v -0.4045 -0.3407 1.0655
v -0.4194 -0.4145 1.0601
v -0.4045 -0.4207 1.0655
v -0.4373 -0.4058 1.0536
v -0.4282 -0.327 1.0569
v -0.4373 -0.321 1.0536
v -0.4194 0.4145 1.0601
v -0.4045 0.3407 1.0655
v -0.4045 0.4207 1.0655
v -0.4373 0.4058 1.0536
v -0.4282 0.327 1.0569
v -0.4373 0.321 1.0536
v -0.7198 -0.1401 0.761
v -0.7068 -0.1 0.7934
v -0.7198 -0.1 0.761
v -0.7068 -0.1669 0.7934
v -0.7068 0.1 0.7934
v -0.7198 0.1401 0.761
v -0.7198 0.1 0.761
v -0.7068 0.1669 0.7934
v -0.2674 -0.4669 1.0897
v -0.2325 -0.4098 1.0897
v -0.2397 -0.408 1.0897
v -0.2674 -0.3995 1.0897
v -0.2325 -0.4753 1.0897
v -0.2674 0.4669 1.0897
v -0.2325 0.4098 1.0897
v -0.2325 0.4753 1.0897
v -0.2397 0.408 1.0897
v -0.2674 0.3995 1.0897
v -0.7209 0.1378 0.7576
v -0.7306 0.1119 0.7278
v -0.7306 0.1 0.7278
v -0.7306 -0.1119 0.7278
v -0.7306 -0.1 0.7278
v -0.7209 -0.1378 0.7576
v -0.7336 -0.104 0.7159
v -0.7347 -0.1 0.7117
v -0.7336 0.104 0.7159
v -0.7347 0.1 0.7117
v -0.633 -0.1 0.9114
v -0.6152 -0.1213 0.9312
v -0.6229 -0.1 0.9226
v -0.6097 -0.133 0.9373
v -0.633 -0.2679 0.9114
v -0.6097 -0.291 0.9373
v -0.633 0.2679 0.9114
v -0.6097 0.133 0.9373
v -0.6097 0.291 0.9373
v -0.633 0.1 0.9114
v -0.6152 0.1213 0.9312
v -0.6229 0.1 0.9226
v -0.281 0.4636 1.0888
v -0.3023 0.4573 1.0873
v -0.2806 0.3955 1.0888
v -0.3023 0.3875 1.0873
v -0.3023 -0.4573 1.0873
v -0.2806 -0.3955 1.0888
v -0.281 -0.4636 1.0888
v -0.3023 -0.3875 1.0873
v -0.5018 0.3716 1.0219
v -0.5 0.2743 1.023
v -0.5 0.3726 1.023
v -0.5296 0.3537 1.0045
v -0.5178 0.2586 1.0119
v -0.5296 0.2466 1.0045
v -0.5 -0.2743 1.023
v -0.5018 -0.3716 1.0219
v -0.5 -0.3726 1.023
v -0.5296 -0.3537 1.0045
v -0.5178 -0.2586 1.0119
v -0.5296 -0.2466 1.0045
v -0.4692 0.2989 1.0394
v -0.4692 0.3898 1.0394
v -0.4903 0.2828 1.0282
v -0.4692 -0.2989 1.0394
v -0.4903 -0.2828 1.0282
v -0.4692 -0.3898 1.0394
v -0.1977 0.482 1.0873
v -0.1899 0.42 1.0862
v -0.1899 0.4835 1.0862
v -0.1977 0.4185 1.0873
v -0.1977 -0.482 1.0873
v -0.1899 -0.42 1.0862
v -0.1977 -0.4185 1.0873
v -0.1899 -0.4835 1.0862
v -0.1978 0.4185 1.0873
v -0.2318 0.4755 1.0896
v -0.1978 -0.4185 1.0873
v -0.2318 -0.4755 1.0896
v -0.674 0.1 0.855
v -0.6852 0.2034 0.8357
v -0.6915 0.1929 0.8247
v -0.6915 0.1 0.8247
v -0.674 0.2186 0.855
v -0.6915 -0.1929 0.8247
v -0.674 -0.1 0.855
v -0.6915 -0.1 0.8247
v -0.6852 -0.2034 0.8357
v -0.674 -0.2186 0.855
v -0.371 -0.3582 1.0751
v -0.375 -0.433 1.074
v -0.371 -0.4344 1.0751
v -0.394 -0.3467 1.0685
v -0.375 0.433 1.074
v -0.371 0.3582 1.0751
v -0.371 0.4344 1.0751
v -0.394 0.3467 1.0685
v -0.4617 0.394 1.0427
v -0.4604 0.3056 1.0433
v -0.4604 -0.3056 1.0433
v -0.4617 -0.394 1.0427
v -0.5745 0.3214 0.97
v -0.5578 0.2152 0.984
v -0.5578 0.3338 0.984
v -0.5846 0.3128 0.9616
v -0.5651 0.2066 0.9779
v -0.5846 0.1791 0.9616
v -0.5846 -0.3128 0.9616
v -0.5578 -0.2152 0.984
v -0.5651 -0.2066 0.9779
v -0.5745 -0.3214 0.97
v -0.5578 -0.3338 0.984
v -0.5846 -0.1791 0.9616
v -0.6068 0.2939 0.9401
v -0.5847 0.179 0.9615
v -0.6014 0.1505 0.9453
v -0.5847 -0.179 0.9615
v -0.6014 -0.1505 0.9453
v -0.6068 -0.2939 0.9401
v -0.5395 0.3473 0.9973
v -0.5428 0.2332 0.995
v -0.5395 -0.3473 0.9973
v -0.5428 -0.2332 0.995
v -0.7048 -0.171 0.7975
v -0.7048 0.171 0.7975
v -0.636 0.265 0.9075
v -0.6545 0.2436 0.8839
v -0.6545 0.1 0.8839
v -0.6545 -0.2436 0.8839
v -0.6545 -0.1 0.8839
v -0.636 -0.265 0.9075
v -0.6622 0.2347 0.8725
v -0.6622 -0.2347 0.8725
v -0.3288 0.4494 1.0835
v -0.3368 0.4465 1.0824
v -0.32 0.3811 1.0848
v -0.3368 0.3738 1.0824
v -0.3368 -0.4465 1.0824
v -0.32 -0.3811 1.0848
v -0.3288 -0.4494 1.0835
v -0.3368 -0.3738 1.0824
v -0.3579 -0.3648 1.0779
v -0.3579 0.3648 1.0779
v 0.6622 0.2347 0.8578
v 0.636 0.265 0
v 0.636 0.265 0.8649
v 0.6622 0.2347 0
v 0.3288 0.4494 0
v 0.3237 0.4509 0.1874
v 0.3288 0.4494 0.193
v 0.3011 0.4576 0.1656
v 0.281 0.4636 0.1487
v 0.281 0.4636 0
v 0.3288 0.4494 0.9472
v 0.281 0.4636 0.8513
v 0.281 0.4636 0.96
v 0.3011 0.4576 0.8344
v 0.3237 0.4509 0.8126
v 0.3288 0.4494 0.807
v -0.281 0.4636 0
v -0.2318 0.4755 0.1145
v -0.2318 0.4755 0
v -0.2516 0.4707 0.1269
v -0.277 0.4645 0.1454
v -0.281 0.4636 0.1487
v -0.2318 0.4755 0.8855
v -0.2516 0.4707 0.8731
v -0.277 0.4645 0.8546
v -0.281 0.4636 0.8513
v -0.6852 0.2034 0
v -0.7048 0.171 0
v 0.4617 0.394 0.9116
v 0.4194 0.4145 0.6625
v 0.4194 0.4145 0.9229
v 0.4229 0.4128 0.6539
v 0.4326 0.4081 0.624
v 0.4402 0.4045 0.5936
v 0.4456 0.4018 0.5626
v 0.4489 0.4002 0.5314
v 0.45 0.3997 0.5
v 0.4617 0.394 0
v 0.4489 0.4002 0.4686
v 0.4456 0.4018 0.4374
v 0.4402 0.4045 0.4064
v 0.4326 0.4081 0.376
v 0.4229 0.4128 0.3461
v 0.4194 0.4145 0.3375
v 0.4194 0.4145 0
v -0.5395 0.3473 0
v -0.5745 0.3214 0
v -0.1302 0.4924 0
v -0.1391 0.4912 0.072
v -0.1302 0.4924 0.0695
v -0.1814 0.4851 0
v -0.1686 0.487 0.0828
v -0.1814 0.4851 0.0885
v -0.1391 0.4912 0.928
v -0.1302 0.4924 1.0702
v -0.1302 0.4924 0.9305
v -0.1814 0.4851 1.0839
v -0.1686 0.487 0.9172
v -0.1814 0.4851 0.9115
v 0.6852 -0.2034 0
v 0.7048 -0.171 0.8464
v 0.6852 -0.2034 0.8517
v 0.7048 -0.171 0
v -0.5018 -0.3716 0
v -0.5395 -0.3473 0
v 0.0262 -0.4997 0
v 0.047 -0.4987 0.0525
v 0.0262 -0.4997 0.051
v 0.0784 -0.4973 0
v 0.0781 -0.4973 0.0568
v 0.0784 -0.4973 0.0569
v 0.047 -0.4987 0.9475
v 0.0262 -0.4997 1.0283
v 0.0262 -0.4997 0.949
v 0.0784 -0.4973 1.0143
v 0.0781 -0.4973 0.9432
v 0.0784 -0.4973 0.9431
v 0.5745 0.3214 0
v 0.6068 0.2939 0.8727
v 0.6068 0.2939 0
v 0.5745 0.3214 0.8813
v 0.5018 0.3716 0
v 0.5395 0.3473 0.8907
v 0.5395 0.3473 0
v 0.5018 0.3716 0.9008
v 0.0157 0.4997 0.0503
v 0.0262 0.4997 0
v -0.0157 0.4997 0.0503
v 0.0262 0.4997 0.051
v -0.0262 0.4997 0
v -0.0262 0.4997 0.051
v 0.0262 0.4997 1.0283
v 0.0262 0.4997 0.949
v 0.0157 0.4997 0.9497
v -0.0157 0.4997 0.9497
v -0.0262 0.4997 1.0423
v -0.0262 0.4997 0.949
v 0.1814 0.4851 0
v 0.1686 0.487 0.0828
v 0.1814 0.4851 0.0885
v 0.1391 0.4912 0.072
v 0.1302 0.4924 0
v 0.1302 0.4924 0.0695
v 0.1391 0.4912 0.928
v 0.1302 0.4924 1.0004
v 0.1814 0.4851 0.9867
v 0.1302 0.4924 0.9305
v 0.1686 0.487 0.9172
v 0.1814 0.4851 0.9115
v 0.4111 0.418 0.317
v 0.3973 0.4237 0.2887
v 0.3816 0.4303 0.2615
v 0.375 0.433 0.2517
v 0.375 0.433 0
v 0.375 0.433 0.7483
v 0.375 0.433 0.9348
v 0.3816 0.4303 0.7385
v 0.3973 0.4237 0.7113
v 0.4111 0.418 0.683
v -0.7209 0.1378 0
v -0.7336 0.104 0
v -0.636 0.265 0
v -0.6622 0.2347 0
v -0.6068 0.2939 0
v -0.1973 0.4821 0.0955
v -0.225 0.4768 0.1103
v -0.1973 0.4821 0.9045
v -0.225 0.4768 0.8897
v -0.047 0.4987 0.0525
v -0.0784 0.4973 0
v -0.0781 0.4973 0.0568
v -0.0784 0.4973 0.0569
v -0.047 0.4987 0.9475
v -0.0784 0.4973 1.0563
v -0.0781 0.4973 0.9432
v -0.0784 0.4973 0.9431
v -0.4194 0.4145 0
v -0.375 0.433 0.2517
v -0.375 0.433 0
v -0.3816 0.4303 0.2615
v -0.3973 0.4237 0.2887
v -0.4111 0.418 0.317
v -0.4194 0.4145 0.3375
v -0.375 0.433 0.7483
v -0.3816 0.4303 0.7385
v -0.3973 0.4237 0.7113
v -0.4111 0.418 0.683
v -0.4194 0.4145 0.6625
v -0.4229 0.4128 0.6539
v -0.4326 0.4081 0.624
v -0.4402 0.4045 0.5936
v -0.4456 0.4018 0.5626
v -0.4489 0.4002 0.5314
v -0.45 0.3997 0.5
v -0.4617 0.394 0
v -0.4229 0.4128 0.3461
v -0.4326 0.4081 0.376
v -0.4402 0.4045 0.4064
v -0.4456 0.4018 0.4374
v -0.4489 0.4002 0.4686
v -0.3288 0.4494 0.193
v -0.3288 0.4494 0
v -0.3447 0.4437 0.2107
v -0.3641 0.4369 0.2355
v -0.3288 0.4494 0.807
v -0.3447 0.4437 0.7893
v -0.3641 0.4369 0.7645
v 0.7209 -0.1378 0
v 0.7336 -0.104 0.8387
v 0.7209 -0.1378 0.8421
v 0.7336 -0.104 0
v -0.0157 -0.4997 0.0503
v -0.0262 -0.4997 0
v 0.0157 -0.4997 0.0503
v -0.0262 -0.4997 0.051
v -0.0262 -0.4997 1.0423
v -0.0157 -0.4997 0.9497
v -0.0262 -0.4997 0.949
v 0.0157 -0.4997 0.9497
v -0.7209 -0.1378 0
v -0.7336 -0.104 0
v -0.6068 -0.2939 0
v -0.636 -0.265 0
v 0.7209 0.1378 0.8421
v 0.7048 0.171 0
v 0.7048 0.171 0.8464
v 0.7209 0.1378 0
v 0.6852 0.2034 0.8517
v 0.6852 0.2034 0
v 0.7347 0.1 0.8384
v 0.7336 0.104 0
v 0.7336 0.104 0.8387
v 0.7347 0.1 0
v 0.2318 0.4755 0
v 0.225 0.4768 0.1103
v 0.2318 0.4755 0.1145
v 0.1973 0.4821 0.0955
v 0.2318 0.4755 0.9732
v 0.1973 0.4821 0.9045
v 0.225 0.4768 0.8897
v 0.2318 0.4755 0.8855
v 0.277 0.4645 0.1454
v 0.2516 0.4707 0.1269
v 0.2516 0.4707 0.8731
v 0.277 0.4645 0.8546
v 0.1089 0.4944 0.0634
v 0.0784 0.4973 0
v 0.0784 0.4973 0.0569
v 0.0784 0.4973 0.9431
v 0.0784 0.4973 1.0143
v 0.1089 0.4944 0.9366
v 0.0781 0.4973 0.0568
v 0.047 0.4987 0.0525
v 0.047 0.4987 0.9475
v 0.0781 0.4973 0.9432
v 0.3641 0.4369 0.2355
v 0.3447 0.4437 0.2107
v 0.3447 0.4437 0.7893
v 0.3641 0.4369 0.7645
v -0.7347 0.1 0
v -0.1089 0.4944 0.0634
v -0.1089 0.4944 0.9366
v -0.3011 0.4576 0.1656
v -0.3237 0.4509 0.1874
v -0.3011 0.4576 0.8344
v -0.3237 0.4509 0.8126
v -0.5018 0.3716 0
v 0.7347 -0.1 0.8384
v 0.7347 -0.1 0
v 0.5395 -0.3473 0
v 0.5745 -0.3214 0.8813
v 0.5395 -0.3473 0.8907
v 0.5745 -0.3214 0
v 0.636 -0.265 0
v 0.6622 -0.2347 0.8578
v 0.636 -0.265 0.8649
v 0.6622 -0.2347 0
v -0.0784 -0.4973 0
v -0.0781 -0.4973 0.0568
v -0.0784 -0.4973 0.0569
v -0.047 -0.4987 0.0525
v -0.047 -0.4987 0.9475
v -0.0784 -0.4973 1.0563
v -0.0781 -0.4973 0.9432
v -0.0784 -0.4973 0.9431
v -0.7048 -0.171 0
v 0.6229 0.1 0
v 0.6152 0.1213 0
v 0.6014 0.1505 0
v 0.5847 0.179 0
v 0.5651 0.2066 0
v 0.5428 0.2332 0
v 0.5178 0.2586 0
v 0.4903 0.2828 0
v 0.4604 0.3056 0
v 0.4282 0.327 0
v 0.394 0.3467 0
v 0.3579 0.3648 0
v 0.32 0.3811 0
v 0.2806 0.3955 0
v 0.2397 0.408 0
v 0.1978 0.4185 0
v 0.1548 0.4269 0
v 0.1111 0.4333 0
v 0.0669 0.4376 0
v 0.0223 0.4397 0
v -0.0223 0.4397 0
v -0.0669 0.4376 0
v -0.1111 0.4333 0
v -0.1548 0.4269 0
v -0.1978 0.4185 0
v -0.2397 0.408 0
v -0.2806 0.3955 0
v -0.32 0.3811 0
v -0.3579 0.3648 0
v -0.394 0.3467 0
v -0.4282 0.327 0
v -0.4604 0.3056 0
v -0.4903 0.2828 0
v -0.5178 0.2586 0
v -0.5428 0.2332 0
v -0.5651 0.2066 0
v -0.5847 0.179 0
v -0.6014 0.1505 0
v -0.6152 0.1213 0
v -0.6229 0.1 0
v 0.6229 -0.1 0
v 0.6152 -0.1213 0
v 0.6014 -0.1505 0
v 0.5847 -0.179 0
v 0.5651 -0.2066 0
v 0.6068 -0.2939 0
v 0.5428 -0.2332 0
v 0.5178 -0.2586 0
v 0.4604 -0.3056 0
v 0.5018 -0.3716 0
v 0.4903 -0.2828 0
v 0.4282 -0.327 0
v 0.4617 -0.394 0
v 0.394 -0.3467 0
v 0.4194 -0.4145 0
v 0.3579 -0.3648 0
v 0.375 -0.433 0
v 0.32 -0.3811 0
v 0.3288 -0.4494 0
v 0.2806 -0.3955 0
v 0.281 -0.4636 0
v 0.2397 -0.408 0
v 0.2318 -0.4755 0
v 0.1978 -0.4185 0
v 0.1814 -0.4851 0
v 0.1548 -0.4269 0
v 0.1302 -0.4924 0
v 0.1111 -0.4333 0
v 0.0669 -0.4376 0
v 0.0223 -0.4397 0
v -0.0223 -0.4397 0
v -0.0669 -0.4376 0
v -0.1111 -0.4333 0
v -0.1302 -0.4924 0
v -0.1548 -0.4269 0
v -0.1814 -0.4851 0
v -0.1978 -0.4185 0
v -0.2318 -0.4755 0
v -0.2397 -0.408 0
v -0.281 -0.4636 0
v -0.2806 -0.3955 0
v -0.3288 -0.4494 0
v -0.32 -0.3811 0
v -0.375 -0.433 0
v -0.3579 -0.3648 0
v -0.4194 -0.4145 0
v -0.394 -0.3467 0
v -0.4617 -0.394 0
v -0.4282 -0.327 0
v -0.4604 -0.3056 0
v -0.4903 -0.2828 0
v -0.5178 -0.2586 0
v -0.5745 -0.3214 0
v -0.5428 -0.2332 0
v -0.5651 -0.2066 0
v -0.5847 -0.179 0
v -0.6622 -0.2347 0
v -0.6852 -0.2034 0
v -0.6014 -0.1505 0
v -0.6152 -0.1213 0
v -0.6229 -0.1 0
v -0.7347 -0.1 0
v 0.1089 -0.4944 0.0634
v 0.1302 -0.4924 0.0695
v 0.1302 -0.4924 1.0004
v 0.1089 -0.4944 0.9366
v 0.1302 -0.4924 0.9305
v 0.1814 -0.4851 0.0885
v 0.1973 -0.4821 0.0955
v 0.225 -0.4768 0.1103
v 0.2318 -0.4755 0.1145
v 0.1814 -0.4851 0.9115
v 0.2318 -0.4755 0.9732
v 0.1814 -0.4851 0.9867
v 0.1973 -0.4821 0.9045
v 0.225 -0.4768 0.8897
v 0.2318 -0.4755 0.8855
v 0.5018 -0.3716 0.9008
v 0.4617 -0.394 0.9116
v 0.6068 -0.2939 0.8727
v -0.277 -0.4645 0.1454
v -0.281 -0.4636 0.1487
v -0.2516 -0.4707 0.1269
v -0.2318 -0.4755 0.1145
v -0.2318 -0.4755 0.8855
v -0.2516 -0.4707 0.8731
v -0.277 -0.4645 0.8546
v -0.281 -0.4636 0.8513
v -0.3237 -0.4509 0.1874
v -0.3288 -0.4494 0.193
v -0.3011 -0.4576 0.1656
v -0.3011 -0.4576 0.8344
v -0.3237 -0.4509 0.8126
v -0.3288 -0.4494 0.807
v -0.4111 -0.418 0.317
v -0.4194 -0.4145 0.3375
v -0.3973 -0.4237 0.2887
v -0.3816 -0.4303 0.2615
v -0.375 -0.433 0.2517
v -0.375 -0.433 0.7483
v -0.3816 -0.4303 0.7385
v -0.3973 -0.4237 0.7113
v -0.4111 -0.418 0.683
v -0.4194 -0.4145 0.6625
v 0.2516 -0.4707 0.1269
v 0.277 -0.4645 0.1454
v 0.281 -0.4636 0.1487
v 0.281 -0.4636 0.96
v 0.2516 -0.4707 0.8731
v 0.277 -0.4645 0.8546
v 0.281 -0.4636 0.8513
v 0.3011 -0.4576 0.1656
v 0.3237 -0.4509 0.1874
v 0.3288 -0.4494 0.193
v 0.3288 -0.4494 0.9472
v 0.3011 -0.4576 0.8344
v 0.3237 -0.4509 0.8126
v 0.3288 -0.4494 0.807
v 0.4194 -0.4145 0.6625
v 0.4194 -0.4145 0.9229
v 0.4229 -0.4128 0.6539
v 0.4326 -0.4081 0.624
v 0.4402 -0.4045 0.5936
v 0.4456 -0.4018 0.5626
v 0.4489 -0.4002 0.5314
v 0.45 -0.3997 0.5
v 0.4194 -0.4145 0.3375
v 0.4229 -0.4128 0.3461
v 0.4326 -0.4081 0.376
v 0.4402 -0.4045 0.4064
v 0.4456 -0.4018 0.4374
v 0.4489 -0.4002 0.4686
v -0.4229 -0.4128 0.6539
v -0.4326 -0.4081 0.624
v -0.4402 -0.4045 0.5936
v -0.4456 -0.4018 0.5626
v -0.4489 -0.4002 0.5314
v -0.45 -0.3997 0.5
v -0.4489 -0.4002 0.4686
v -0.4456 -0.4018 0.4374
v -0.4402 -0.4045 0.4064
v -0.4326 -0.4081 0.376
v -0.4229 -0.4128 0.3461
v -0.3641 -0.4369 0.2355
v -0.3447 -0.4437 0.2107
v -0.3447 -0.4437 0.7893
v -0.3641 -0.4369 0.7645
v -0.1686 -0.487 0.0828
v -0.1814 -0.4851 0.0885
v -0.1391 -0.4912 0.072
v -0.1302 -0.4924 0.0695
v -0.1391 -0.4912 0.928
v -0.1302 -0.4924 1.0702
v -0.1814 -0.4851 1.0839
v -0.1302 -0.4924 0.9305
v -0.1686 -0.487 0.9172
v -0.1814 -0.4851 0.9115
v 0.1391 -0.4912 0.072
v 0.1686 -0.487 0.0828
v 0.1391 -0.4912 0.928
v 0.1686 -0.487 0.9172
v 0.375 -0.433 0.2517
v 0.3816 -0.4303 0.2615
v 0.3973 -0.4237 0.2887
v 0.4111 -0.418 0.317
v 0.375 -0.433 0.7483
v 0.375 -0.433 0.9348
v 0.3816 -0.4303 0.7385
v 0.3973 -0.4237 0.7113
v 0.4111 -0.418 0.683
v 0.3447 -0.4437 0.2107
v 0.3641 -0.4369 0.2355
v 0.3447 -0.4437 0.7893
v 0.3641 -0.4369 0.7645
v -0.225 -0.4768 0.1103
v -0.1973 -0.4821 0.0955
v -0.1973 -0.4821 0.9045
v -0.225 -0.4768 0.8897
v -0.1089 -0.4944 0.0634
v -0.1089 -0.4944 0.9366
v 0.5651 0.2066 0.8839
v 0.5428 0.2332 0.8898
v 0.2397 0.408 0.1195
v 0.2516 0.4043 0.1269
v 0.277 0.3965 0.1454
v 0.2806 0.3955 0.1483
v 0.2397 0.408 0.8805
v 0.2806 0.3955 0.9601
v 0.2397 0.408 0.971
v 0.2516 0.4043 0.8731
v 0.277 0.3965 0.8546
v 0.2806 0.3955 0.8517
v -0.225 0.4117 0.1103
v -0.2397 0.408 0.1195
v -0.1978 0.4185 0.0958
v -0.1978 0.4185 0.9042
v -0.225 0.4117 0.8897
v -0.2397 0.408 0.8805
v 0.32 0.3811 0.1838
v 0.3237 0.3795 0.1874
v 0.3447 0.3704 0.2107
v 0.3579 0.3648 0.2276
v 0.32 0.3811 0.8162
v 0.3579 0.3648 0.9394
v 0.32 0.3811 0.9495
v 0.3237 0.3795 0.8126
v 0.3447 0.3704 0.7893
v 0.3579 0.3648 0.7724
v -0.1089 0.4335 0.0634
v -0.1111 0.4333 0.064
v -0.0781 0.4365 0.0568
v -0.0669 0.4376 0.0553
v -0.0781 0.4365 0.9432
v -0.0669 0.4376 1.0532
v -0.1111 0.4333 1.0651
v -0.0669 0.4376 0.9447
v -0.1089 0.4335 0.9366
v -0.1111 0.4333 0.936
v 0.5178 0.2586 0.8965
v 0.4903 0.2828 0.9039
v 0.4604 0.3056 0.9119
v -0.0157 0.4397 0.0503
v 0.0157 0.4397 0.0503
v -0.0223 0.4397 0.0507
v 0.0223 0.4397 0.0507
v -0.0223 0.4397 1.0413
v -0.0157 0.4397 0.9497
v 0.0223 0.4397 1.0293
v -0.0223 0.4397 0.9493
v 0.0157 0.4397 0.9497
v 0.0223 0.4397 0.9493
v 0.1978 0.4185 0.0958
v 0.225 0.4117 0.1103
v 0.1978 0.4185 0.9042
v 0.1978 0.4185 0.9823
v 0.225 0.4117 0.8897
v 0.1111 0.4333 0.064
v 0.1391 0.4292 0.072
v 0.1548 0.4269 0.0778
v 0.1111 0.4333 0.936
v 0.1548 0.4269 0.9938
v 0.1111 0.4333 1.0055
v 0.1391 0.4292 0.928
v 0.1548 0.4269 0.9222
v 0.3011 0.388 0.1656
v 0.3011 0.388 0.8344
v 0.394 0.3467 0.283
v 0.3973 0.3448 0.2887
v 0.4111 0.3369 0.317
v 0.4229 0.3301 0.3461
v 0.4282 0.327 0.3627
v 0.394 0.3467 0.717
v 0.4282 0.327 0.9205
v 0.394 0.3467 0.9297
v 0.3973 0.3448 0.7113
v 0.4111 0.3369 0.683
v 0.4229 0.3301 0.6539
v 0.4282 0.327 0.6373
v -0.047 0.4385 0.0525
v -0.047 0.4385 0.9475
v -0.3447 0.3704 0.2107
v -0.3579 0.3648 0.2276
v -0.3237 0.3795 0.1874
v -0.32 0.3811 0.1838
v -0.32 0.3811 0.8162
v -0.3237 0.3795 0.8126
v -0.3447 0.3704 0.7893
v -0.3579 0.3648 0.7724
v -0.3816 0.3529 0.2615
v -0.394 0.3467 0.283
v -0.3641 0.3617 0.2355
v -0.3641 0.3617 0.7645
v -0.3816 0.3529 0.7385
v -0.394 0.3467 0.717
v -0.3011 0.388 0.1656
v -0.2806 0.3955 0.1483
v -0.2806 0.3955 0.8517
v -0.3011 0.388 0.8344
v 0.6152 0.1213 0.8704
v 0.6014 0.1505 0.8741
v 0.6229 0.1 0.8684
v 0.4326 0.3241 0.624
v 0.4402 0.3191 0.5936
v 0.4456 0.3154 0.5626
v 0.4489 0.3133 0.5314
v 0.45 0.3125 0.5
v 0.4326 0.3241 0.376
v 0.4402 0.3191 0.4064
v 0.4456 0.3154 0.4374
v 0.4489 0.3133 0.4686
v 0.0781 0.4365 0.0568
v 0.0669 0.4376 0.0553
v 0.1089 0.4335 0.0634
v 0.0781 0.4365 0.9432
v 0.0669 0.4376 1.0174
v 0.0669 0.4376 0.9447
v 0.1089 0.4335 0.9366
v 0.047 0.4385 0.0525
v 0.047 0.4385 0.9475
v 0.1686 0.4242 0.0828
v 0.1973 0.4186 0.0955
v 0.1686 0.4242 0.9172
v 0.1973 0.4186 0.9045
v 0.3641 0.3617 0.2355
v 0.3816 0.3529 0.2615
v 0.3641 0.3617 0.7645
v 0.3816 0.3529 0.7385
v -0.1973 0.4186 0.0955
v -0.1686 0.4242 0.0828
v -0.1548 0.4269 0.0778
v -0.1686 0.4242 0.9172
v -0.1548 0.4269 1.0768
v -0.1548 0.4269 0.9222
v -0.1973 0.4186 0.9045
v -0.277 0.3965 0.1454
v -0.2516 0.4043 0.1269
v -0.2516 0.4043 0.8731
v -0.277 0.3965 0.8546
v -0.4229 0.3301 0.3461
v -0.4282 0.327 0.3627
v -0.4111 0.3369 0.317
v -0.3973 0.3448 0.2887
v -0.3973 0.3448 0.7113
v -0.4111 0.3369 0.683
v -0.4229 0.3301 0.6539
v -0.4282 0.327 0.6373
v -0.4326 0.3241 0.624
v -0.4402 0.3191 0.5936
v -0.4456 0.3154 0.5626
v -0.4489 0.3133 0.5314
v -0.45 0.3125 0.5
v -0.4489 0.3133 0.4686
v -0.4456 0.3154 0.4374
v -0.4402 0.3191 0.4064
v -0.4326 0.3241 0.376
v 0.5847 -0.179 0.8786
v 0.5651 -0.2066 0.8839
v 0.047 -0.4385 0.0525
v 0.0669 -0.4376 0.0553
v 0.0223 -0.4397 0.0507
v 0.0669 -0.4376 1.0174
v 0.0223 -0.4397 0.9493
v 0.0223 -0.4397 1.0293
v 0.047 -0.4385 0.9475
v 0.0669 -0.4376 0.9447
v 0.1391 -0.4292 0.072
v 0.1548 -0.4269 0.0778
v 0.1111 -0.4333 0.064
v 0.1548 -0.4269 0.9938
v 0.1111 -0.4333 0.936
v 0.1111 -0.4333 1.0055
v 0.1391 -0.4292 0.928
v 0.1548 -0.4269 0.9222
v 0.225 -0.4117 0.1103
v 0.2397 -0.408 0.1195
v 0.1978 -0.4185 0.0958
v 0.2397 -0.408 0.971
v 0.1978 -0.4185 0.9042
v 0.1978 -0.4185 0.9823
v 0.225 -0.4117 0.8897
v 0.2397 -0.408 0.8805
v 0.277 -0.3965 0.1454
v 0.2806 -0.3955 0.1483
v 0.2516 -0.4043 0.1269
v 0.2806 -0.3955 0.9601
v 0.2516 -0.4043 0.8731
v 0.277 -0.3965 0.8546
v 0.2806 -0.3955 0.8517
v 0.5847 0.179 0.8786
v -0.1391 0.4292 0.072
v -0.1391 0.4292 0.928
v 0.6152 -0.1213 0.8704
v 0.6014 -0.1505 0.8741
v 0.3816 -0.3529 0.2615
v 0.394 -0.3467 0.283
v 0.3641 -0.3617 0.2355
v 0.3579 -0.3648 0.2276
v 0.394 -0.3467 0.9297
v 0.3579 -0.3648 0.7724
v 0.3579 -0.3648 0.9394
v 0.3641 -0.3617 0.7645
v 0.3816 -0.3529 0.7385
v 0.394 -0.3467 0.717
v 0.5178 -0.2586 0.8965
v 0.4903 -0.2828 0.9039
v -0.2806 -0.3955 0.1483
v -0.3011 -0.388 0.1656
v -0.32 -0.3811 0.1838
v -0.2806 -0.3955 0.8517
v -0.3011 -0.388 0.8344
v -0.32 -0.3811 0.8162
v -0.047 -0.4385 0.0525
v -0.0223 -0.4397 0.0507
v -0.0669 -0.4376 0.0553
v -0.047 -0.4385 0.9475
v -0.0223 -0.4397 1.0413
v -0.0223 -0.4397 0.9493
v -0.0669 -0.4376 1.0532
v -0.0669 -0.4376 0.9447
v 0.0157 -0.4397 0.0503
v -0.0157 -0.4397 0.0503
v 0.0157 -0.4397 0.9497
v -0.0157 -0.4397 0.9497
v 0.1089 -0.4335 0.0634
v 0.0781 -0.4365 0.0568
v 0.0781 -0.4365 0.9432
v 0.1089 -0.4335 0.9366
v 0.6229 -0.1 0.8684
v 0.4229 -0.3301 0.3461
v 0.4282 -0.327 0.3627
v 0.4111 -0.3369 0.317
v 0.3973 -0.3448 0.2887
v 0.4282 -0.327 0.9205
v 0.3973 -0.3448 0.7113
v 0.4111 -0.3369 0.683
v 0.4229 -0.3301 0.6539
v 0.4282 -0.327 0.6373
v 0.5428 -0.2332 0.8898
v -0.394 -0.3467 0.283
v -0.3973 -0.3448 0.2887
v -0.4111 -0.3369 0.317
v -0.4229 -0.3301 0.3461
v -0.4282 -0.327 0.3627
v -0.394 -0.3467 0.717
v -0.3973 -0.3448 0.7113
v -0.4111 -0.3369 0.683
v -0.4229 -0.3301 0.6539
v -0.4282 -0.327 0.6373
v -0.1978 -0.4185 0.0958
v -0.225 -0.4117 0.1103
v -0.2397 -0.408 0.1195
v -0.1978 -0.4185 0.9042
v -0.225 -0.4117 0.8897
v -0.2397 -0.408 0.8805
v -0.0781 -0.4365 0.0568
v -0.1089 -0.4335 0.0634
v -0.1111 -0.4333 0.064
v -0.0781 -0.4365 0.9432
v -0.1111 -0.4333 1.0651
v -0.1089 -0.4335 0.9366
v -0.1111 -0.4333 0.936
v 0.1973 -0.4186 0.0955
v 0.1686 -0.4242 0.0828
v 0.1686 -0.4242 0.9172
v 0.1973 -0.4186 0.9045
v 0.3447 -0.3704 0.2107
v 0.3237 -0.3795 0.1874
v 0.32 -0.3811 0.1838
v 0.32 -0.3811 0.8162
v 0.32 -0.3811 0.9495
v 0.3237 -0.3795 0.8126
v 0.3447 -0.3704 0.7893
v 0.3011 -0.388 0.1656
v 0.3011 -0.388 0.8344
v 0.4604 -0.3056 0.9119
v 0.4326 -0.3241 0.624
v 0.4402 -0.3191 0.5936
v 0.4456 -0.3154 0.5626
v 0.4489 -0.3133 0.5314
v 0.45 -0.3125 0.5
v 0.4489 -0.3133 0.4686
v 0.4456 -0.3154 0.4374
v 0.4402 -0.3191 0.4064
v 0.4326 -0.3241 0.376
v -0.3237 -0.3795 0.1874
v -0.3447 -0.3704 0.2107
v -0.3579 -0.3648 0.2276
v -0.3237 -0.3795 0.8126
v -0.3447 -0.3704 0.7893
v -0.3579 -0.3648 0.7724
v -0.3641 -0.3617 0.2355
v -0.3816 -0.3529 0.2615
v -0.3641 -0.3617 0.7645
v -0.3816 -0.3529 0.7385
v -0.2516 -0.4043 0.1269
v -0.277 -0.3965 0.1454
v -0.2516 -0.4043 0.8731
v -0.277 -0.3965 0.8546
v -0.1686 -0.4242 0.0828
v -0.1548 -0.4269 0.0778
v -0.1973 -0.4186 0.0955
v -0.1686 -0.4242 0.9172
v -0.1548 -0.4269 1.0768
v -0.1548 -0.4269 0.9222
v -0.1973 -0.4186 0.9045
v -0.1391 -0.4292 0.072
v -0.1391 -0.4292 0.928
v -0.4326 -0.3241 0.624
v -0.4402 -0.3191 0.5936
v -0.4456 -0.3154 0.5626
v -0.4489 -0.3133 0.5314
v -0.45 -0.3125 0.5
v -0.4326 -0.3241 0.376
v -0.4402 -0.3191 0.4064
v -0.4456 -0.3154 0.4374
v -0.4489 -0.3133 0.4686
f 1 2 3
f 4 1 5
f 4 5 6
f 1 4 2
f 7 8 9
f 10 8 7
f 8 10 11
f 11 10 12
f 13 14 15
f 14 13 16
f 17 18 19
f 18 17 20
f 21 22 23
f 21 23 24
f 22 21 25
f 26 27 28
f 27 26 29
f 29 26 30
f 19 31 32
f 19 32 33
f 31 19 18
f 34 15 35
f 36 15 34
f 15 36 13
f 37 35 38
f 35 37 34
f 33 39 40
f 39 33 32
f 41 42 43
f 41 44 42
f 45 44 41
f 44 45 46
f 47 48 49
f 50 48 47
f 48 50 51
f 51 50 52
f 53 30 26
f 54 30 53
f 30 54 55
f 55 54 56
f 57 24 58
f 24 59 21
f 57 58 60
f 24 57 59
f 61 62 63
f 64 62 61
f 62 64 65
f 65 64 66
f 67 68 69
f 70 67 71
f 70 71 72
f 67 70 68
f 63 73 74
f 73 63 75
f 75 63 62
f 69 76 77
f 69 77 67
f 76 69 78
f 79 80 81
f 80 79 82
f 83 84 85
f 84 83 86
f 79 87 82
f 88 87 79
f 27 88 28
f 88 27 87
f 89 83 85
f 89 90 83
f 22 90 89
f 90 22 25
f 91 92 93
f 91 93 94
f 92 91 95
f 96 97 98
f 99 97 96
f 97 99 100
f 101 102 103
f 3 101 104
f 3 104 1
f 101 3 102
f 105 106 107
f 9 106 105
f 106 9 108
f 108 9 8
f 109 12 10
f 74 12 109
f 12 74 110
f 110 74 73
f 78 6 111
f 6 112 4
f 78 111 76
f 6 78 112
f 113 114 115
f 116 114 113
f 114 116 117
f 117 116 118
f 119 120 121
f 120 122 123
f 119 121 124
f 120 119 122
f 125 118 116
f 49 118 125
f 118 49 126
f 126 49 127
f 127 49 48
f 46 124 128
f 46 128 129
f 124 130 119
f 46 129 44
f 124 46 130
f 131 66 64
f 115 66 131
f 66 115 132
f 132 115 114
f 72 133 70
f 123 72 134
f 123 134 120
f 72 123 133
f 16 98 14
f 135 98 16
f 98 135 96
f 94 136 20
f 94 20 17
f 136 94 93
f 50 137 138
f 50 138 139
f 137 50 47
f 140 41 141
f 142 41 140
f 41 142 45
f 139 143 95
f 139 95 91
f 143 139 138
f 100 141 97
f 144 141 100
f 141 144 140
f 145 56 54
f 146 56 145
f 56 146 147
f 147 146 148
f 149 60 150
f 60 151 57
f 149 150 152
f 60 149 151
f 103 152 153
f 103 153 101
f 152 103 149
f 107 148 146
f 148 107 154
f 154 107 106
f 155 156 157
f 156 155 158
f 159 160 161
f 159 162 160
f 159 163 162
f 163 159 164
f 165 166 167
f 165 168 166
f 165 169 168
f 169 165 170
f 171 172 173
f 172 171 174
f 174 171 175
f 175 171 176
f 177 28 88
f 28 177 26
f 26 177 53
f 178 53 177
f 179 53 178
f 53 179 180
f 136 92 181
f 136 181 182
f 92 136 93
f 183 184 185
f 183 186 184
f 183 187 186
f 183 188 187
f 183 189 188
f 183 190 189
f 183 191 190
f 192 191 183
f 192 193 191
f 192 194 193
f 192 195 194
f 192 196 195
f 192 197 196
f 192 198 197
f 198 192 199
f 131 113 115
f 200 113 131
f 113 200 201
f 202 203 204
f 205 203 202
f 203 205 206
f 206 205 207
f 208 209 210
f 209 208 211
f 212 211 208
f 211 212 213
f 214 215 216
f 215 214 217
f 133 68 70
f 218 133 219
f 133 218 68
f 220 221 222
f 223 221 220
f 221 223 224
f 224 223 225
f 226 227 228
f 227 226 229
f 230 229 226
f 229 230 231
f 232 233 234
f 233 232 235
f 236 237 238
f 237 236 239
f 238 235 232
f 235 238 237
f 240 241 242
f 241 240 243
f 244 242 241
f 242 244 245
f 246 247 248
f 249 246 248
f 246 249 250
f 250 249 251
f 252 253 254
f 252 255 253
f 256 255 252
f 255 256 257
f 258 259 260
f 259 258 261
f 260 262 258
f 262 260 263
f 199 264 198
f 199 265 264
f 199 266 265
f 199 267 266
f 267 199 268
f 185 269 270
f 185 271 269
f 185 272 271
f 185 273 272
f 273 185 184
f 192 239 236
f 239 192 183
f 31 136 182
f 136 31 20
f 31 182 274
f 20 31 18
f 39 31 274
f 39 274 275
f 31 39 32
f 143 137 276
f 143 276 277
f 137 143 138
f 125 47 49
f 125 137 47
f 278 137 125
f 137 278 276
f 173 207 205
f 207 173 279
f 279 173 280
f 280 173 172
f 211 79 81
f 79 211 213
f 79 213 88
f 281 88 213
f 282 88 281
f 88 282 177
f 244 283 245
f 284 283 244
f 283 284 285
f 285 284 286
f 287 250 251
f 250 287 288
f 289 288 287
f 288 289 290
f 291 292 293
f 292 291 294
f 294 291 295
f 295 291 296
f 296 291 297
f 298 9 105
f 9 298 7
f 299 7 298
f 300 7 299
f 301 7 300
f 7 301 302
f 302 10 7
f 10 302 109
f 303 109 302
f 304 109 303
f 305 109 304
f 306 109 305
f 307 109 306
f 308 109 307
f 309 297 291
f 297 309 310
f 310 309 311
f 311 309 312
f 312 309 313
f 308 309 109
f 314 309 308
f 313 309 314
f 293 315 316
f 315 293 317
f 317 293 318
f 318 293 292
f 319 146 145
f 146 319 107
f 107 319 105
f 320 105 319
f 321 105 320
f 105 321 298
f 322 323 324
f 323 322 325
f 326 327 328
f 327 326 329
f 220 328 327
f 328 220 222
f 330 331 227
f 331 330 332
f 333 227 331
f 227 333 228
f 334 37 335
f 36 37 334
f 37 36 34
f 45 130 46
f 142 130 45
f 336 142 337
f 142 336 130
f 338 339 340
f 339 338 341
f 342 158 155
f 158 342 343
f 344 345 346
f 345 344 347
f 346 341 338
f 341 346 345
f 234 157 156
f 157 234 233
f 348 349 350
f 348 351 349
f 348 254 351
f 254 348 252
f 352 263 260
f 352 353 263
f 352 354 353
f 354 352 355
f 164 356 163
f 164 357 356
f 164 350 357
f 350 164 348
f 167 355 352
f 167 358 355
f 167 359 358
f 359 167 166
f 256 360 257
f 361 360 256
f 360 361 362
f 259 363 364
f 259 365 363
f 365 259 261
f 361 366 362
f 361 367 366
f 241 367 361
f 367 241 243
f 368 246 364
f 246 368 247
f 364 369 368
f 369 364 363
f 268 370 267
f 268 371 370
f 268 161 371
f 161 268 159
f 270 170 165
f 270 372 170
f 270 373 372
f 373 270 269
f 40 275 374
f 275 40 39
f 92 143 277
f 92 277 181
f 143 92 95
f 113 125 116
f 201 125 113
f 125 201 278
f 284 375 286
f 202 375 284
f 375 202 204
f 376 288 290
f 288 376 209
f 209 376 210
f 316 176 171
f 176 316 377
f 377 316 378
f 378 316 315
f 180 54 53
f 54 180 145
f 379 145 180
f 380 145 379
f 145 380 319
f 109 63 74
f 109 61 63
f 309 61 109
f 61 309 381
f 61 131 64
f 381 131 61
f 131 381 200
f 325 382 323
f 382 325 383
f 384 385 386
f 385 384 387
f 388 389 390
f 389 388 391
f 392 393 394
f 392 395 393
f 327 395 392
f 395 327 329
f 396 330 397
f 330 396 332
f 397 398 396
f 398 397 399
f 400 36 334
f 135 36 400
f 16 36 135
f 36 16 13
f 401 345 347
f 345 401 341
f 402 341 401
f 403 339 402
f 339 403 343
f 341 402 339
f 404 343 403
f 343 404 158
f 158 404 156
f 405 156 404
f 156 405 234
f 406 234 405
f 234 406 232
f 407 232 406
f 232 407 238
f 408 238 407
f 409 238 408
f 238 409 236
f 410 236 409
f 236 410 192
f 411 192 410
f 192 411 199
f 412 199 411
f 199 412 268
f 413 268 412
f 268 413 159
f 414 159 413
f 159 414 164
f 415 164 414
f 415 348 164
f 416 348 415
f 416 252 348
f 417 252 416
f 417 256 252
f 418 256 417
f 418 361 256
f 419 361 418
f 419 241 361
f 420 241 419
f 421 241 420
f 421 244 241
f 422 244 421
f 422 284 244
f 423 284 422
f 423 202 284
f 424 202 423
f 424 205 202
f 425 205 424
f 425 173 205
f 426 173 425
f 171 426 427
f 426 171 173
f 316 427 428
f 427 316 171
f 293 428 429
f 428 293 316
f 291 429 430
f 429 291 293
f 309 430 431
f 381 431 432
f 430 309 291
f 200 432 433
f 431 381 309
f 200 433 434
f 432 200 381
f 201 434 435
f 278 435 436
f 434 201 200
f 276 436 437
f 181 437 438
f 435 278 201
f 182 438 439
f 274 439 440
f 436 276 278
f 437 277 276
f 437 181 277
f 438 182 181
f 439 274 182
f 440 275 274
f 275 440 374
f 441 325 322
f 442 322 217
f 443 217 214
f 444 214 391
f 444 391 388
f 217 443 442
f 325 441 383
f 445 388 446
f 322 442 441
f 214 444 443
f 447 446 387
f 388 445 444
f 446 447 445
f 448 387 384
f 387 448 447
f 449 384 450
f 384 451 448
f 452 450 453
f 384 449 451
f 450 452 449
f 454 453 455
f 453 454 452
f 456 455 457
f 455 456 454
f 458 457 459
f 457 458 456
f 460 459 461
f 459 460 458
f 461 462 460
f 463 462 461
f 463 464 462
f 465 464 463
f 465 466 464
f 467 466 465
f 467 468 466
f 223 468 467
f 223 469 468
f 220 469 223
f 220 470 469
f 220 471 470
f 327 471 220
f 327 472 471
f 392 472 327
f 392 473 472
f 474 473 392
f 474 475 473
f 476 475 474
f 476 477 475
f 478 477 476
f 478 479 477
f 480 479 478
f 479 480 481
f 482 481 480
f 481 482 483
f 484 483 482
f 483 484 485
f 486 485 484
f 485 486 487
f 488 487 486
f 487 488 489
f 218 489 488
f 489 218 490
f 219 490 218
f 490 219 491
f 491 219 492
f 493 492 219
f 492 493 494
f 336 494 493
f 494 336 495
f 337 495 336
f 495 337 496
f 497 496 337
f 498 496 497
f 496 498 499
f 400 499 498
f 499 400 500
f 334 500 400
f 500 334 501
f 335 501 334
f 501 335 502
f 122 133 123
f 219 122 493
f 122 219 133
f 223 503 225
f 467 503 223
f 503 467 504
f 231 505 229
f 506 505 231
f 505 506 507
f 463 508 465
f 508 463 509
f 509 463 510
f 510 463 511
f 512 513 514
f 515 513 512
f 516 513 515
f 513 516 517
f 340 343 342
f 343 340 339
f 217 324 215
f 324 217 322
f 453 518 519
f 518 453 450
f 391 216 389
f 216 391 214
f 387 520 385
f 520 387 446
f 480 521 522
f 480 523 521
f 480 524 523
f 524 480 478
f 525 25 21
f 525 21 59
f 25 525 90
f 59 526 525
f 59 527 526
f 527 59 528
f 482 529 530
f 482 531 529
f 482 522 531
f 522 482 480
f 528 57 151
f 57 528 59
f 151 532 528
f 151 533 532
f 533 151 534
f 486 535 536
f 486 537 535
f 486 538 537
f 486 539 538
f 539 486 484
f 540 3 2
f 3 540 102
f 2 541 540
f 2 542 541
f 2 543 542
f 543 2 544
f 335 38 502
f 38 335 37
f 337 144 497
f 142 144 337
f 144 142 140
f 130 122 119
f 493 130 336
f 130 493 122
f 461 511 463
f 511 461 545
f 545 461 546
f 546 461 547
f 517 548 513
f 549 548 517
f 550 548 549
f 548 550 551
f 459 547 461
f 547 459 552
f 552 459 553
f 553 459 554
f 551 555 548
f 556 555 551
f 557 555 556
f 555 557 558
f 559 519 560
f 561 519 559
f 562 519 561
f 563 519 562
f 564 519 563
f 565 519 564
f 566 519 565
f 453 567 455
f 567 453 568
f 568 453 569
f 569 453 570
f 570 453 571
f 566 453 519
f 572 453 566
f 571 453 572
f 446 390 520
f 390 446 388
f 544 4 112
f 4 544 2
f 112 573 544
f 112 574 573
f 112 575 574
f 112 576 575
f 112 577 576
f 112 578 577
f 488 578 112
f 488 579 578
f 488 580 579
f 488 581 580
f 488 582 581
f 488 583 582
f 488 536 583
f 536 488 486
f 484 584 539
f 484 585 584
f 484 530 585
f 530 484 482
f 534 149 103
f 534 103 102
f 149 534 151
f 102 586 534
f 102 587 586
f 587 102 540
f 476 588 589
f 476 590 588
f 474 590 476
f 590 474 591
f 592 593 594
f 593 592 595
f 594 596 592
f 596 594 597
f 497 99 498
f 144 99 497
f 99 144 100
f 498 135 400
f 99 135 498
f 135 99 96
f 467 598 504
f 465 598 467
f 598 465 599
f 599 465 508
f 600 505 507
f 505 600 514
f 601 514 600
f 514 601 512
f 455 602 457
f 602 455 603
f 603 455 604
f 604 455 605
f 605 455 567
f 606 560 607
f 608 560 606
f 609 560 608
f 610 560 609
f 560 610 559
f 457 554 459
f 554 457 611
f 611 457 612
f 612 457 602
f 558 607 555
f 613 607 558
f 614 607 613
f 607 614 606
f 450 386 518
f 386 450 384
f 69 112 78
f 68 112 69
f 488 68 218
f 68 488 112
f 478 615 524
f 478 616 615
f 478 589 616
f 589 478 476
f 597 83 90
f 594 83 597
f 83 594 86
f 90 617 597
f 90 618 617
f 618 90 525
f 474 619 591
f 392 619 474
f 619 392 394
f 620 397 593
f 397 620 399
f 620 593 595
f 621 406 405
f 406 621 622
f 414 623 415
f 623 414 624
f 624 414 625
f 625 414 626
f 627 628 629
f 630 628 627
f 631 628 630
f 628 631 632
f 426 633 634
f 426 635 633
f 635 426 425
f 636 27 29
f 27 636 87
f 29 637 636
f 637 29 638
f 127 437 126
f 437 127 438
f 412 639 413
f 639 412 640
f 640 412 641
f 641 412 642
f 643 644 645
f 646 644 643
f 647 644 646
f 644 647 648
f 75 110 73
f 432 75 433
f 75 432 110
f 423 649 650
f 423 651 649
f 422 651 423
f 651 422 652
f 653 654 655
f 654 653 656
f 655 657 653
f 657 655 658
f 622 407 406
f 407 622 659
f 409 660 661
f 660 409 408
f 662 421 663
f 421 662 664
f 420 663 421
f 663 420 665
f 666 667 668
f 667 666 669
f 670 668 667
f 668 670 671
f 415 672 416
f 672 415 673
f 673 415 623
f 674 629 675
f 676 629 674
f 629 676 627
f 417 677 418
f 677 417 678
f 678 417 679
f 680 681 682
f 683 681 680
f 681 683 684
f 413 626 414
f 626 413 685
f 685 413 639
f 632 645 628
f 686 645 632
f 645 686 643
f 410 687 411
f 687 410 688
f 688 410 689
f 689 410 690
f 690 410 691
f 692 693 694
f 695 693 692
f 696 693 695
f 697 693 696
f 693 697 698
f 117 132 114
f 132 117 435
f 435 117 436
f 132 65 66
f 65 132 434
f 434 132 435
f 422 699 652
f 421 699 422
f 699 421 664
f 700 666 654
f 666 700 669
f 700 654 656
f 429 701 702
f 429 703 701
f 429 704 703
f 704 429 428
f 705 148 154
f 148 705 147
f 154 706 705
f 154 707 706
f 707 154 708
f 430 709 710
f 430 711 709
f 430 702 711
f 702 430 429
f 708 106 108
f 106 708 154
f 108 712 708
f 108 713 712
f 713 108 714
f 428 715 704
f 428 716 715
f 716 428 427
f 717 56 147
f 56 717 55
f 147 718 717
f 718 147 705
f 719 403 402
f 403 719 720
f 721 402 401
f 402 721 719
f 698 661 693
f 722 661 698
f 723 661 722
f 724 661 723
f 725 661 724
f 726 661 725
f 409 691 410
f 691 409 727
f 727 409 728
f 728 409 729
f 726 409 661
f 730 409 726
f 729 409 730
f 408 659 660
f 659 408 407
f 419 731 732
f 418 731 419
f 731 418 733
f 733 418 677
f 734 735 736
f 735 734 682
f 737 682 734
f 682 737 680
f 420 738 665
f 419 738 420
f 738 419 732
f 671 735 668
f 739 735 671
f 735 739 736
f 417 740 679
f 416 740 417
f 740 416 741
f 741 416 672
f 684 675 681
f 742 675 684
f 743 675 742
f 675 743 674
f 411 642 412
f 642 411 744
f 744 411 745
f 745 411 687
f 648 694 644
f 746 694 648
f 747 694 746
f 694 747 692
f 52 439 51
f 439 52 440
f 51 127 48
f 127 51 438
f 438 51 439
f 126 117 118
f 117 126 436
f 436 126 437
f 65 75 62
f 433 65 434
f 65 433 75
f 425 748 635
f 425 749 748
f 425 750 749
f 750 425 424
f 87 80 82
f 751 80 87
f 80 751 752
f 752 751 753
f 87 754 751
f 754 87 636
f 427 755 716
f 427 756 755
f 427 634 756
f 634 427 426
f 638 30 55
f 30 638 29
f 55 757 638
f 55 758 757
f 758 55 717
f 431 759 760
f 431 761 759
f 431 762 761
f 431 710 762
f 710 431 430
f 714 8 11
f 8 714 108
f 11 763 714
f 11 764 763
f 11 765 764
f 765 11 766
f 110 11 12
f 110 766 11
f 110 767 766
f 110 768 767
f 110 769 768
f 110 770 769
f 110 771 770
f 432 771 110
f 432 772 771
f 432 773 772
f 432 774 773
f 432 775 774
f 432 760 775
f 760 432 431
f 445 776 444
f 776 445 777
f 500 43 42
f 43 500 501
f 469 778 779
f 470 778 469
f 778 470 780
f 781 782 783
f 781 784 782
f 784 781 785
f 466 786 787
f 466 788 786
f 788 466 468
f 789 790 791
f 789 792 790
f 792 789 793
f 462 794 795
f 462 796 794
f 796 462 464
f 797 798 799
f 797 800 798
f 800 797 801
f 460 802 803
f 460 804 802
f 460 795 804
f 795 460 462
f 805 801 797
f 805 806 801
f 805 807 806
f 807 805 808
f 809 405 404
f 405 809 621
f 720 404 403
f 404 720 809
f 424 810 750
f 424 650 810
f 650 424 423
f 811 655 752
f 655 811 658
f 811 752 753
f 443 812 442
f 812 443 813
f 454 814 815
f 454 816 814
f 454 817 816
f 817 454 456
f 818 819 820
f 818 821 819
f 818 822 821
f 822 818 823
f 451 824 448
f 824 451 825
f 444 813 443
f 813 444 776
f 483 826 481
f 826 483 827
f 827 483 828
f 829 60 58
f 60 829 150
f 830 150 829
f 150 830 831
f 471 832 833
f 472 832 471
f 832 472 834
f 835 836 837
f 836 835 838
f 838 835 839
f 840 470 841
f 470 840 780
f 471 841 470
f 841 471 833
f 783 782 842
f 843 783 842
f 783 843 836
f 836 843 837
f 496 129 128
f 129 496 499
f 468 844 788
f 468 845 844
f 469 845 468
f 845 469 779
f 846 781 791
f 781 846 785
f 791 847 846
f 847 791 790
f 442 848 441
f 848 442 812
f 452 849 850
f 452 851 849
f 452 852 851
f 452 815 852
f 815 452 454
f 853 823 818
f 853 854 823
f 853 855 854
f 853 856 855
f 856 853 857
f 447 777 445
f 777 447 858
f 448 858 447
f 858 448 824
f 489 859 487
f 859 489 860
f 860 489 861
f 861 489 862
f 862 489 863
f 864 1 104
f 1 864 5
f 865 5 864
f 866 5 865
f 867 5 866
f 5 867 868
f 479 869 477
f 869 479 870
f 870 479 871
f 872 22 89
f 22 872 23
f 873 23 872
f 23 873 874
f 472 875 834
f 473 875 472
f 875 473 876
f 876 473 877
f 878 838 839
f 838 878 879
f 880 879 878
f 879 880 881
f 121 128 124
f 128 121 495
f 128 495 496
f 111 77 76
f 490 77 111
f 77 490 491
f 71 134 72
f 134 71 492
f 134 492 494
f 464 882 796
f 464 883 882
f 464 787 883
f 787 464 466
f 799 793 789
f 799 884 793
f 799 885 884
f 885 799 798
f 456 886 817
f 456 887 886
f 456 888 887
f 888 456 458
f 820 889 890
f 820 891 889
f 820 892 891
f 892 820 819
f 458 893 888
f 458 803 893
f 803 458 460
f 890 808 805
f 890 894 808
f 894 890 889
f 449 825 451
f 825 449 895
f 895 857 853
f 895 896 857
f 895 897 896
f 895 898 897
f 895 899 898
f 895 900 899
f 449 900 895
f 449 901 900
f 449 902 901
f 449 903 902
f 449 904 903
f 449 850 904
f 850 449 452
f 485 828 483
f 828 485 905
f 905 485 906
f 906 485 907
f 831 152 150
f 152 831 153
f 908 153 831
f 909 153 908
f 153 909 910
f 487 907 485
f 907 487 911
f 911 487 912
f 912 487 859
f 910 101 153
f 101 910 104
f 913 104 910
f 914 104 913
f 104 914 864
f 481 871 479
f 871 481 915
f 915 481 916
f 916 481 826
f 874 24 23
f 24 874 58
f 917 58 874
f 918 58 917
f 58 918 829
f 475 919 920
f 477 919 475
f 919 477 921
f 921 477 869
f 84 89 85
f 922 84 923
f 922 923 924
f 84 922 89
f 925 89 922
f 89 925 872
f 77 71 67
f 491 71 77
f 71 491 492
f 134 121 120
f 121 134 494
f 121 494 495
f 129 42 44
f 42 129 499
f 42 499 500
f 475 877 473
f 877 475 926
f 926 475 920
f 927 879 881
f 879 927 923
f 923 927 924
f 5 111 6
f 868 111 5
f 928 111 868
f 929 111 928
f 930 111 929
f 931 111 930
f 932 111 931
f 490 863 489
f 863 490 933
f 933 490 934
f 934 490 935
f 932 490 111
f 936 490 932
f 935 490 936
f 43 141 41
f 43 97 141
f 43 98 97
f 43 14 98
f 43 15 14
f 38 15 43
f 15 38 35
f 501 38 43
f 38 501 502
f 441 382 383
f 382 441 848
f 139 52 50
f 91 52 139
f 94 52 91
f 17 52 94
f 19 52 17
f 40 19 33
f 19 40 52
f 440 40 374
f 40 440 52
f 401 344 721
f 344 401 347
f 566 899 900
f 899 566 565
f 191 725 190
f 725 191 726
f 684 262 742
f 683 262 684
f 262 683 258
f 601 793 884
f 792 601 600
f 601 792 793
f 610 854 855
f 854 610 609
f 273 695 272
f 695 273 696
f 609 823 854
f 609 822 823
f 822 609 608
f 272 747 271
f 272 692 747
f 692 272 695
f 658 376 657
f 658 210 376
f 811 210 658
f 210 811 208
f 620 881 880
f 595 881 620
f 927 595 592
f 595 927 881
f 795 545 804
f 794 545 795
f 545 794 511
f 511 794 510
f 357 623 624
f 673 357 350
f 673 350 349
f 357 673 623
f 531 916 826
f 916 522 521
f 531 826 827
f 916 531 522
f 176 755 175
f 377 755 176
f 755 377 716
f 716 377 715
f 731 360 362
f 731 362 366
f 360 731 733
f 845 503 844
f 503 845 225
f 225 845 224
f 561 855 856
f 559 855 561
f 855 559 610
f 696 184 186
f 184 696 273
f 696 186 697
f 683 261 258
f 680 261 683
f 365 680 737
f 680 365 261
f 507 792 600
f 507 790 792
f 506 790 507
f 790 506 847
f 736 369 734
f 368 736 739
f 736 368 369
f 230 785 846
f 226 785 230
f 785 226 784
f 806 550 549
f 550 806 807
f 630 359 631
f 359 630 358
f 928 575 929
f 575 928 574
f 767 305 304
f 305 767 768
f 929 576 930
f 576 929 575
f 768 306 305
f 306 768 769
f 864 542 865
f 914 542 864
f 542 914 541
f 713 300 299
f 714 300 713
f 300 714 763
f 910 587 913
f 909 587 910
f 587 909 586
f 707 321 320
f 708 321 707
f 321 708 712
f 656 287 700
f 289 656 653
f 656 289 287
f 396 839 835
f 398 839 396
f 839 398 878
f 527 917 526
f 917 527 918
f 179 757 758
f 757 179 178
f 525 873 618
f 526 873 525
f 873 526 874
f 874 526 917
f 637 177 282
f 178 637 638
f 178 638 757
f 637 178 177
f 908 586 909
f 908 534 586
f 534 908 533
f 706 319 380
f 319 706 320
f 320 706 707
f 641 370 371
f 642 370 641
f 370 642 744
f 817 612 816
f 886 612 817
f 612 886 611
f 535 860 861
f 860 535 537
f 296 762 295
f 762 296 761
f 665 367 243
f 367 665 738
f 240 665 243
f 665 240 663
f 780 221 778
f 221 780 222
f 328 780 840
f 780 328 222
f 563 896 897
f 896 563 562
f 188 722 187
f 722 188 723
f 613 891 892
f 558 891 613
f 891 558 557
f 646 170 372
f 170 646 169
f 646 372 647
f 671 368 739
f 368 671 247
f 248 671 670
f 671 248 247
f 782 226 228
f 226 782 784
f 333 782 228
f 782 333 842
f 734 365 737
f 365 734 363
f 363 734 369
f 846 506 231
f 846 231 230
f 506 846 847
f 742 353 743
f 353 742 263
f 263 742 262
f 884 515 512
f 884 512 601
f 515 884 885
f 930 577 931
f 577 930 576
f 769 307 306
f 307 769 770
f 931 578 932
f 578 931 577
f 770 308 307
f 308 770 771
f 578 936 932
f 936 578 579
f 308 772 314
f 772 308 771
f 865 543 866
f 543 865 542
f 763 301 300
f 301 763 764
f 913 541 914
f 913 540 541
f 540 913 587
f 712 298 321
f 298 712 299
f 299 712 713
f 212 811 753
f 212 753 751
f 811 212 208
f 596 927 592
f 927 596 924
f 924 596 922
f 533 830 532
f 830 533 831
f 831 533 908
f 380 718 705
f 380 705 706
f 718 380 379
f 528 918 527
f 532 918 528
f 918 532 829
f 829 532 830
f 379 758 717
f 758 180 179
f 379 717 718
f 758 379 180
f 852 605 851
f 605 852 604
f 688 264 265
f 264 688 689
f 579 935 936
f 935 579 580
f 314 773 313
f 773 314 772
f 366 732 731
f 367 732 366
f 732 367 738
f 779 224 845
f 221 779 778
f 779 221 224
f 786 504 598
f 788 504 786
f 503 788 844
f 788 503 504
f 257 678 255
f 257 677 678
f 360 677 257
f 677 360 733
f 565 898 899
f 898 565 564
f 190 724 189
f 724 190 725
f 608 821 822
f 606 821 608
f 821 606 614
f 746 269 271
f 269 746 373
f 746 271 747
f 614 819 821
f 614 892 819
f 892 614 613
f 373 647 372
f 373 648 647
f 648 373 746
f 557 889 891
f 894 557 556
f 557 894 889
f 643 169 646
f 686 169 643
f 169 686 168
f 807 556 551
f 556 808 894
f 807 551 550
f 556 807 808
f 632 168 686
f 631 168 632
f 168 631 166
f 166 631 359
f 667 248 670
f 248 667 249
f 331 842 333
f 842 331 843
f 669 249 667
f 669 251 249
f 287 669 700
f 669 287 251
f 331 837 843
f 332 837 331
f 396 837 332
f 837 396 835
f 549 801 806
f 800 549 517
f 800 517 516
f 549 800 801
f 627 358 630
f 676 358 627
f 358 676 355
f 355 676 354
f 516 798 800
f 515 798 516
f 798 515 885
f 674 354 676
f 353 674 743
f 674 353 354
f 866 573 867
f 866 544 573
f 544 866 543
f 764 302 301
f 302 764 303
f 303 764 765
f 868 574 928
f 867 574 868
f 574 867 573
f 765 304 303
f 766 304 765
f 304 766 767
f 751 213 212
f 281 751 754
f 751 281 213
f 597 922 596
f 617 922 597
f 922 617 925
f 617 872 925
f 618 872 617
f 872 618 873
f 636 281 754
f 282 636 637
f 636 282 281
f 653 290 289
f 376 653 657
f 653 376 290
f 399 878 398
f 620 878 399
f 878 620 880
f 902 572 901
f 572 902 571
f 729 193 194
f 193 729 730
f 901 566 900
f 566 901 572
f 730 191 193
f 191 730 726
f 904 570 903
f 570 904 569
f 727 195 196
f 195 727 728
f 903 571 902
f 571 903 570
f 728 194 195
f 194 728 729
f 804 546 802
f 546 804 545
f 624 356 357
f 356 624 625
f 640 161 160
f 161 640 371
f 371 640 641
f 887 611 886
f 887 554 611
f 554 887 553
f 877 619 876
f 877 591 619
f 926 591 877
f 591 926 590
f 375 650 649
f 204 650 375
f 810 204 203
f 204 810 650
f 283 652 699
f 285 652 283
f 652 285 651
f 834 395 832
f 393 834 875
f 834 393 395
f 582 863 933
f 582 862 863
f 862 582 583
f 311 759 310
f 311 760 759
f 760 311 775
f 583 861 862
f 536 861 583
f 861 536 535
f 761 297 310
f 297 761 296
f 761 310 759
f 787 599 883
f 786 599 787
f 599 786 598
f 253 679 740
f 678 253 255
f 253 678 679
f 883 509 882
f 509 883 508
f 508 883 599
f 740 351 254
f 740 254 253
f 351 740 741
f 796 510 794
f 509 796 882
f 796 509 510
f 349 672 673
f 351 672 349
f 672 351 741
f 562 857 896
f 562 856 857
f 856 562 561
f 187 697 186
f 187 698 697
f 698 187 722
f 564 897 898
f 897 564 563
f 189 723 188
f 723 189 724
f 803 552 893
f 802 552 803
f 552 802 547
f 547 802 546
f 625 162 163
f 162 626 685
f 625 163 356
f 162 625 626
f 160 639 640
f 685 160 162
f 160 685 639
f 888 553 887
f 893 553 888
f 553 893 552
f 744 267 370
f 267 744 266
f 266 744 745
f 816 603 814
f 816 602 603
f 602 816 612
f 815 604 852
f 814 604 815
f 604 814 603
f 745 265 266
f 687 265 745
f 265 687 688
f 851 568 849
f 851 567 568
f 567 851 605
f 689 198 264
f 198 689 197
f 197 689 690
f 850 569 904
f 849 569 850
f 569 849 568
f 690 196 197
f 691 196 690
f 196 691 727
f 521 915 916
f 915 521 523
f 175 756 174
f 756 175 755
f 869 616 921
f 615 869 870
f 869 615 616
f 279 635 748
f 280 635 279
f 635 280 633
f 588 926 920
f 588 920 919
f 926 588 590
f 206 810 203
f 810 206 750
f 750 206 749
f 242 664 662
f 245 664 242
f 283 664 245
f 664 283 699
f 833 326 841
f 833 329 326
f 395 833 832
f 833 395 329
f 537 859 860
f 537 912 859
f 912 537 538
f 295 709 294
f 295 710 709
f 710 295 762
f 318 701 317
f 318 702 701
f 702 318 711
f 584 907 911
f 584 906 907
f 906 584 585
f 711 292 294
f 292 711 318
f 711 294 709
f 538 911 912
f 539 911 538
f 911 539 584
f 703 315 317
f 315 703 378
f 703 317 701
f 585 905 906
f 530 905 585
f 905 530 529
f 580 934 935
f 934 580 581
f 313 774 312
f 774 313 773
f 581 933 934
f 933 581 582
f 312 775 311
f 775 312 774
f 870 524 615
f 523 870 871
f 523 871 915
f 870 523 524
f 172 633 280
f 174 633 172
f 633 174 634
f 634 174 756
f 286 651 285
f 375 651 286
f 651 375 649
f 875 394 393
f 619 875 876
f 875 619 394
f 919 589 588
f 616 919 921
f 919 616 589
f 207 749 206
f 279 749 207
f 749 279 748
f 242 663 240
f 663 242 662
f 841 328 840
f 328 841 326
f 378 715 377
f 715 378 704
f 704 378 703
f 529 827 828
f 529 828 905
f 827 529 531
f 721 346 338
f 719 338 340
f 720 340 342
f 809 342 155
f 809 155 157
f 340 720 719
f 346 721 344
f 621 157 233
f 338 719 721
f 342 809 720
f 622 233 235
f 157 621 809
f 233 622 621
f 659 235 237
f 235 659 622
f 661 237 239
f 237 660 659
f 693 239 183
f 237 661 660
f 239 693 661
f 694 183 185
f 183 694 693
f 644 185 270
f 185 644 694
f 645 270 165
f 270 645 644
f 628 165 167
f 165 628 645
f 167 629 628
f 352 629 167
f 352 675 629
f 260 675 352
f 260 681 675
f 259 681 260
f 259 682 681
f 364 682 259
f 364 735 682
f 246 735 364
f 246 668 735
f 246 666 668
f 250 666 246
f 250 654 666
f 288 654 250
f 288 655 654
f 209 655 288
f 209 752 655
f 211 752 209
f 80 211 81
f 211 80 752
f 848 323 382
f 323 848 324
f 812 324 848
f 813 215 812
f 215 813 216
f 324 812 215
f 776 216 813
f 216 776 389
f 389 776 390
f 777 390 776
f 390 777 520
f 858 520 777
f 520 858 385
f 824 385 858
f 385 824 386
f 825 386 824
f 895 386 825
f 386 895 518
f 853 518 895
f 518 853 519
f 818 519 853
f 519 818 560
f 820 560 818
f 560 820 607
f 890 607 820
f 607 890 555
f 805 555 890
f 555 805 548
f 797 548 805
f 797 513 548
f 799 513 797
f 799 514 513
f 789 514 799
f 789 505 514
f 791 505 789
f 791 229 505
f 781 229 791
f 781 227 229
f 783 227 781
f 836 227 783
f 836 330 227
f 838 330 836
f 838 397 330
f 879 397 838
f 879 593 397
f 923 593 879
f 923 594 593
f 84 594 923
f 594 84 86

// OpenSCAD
// Generated by SolidPython 1.1.3 on 2024-12-04 15:32:43
$fn = 90;


difference() {
	scale(v = [1.5000000000, 1, 1]) {
		cylinder(h = 1.5000000000, r = 0.5000000000);
	}
	scale(v = [1.6000000000, 1.1000000000, 1]) {
		cylinder(h = 2, r = 0.4000000000);
	}
	scale(v = [2, 0.2000000000, 2]) {
		translate(v = [-0.5000000000, -0.5000000000, 0]) {
			cube();
		}
	}
	translate(v = [0, 0.7000000000, 0.5000000000]) {
		rotate(a = [90, 0, 0]) {
			cylinder(h = 2, r = 0.4500000000);
		}
	}
	rotate(a = [0, 15, 0]) {
		translate(v = [-1.4000000000, -0.8000000000, 1]) {
			cube(size = 2);
		}
	}
	difference() {
		translate(v = [-1.6500000000, -0.8000000000, 0.7000000000]) {
			cube(size = 1.5000000000);
		}
		translate(v = [-0.2500000000, 0.7000000000, 0.5900000000]) {
			rotate(a = [90, 0, 0]) {
				cylinder(h = 2, r = 0.5000000000);
			}
		}
	}
}
/***********************************************
*********      SolidPython code:      **********
************************************************
 
# SolidPython example code 
# Brygg Ullmer, Clemson University
# Begun 2024-10-24
# Documented on 2024-12-04

from solid import *        # load in SolidPython/SCAD support code

cyl1a = cylinder(r=.5,  h=1.5); cyl1b = scale([1.5, 1,   1])(cyl1a) #cyl1b expresses the outer perimeter.  
cyl2a = cylinder(r=.4,  h=2);   cyl2b = scale([1.6, 1.1, 1])(cyl2a) #cyl2b is for cutting away the inside
outGeom = cyl1b - cyl2b #output as exSolid04a.png. this performs the subtraction/cut, leaving an elliptical pipe.  

cube1a = cube();  cube1b = translate([ -.5, -.5, 0 ])(cube1a); cube1c = scale([2, .2, 2])(cube1b) #for cutting the pipe in two
cyl3a  = cylinder(r=.45, h=2); cyl3b = rotate(a = [90, 0, 0])(cyl3a)
cyl3c  = translate([0, .7, .5 ])(cyl3b) #cylinder for large hole perforating the two halves of the oculus

outGeom -= cube1c #cleave the pipe into left and right halves
outGeom -= cyl3c  #output as exSolid04b.png. perforate the two halves of the oculus 

trimTopHeight = 1; trimTopAngle = 15 #15 degree angle to trimming of top of oculus

cube2a = cube(2);   cube2b = translate([-1.4, -.8, trimTopHeight])(cube2a)
cube2c = rotate(a = [0, trimTopAngle, 0])(cube2b)
cube3a = cube(1.5); cube3b = translate([-1.65,-.8, .7])(cube3a)
cyl4a  = cylinder(r=.5,  h=2); cyl4b = rotate(a = [90, 0, 0])(cyl4a); cyl4c  = translate([-.25,  .7, .59])(cyl4b)

outGeom -= cube2c #cube2c trims the top of the two oculus halves (at height trimTopHeight, angle trimTopAngle)
roundOutTopEdge = cube3b - cyl4c # SolidPython doesn't presently provide a bevel/fillet, but we can approximate
outGeom -= roundOutTopEdge

radialSegments = 90; hdr = '$fn = %s;' % radialSegments # create a header for the export
scad_render_to_file(outGeom, 'exSolid04c.scad', file_header=hdr) # write the .scad file

### end ###

 
 
************************************************/
